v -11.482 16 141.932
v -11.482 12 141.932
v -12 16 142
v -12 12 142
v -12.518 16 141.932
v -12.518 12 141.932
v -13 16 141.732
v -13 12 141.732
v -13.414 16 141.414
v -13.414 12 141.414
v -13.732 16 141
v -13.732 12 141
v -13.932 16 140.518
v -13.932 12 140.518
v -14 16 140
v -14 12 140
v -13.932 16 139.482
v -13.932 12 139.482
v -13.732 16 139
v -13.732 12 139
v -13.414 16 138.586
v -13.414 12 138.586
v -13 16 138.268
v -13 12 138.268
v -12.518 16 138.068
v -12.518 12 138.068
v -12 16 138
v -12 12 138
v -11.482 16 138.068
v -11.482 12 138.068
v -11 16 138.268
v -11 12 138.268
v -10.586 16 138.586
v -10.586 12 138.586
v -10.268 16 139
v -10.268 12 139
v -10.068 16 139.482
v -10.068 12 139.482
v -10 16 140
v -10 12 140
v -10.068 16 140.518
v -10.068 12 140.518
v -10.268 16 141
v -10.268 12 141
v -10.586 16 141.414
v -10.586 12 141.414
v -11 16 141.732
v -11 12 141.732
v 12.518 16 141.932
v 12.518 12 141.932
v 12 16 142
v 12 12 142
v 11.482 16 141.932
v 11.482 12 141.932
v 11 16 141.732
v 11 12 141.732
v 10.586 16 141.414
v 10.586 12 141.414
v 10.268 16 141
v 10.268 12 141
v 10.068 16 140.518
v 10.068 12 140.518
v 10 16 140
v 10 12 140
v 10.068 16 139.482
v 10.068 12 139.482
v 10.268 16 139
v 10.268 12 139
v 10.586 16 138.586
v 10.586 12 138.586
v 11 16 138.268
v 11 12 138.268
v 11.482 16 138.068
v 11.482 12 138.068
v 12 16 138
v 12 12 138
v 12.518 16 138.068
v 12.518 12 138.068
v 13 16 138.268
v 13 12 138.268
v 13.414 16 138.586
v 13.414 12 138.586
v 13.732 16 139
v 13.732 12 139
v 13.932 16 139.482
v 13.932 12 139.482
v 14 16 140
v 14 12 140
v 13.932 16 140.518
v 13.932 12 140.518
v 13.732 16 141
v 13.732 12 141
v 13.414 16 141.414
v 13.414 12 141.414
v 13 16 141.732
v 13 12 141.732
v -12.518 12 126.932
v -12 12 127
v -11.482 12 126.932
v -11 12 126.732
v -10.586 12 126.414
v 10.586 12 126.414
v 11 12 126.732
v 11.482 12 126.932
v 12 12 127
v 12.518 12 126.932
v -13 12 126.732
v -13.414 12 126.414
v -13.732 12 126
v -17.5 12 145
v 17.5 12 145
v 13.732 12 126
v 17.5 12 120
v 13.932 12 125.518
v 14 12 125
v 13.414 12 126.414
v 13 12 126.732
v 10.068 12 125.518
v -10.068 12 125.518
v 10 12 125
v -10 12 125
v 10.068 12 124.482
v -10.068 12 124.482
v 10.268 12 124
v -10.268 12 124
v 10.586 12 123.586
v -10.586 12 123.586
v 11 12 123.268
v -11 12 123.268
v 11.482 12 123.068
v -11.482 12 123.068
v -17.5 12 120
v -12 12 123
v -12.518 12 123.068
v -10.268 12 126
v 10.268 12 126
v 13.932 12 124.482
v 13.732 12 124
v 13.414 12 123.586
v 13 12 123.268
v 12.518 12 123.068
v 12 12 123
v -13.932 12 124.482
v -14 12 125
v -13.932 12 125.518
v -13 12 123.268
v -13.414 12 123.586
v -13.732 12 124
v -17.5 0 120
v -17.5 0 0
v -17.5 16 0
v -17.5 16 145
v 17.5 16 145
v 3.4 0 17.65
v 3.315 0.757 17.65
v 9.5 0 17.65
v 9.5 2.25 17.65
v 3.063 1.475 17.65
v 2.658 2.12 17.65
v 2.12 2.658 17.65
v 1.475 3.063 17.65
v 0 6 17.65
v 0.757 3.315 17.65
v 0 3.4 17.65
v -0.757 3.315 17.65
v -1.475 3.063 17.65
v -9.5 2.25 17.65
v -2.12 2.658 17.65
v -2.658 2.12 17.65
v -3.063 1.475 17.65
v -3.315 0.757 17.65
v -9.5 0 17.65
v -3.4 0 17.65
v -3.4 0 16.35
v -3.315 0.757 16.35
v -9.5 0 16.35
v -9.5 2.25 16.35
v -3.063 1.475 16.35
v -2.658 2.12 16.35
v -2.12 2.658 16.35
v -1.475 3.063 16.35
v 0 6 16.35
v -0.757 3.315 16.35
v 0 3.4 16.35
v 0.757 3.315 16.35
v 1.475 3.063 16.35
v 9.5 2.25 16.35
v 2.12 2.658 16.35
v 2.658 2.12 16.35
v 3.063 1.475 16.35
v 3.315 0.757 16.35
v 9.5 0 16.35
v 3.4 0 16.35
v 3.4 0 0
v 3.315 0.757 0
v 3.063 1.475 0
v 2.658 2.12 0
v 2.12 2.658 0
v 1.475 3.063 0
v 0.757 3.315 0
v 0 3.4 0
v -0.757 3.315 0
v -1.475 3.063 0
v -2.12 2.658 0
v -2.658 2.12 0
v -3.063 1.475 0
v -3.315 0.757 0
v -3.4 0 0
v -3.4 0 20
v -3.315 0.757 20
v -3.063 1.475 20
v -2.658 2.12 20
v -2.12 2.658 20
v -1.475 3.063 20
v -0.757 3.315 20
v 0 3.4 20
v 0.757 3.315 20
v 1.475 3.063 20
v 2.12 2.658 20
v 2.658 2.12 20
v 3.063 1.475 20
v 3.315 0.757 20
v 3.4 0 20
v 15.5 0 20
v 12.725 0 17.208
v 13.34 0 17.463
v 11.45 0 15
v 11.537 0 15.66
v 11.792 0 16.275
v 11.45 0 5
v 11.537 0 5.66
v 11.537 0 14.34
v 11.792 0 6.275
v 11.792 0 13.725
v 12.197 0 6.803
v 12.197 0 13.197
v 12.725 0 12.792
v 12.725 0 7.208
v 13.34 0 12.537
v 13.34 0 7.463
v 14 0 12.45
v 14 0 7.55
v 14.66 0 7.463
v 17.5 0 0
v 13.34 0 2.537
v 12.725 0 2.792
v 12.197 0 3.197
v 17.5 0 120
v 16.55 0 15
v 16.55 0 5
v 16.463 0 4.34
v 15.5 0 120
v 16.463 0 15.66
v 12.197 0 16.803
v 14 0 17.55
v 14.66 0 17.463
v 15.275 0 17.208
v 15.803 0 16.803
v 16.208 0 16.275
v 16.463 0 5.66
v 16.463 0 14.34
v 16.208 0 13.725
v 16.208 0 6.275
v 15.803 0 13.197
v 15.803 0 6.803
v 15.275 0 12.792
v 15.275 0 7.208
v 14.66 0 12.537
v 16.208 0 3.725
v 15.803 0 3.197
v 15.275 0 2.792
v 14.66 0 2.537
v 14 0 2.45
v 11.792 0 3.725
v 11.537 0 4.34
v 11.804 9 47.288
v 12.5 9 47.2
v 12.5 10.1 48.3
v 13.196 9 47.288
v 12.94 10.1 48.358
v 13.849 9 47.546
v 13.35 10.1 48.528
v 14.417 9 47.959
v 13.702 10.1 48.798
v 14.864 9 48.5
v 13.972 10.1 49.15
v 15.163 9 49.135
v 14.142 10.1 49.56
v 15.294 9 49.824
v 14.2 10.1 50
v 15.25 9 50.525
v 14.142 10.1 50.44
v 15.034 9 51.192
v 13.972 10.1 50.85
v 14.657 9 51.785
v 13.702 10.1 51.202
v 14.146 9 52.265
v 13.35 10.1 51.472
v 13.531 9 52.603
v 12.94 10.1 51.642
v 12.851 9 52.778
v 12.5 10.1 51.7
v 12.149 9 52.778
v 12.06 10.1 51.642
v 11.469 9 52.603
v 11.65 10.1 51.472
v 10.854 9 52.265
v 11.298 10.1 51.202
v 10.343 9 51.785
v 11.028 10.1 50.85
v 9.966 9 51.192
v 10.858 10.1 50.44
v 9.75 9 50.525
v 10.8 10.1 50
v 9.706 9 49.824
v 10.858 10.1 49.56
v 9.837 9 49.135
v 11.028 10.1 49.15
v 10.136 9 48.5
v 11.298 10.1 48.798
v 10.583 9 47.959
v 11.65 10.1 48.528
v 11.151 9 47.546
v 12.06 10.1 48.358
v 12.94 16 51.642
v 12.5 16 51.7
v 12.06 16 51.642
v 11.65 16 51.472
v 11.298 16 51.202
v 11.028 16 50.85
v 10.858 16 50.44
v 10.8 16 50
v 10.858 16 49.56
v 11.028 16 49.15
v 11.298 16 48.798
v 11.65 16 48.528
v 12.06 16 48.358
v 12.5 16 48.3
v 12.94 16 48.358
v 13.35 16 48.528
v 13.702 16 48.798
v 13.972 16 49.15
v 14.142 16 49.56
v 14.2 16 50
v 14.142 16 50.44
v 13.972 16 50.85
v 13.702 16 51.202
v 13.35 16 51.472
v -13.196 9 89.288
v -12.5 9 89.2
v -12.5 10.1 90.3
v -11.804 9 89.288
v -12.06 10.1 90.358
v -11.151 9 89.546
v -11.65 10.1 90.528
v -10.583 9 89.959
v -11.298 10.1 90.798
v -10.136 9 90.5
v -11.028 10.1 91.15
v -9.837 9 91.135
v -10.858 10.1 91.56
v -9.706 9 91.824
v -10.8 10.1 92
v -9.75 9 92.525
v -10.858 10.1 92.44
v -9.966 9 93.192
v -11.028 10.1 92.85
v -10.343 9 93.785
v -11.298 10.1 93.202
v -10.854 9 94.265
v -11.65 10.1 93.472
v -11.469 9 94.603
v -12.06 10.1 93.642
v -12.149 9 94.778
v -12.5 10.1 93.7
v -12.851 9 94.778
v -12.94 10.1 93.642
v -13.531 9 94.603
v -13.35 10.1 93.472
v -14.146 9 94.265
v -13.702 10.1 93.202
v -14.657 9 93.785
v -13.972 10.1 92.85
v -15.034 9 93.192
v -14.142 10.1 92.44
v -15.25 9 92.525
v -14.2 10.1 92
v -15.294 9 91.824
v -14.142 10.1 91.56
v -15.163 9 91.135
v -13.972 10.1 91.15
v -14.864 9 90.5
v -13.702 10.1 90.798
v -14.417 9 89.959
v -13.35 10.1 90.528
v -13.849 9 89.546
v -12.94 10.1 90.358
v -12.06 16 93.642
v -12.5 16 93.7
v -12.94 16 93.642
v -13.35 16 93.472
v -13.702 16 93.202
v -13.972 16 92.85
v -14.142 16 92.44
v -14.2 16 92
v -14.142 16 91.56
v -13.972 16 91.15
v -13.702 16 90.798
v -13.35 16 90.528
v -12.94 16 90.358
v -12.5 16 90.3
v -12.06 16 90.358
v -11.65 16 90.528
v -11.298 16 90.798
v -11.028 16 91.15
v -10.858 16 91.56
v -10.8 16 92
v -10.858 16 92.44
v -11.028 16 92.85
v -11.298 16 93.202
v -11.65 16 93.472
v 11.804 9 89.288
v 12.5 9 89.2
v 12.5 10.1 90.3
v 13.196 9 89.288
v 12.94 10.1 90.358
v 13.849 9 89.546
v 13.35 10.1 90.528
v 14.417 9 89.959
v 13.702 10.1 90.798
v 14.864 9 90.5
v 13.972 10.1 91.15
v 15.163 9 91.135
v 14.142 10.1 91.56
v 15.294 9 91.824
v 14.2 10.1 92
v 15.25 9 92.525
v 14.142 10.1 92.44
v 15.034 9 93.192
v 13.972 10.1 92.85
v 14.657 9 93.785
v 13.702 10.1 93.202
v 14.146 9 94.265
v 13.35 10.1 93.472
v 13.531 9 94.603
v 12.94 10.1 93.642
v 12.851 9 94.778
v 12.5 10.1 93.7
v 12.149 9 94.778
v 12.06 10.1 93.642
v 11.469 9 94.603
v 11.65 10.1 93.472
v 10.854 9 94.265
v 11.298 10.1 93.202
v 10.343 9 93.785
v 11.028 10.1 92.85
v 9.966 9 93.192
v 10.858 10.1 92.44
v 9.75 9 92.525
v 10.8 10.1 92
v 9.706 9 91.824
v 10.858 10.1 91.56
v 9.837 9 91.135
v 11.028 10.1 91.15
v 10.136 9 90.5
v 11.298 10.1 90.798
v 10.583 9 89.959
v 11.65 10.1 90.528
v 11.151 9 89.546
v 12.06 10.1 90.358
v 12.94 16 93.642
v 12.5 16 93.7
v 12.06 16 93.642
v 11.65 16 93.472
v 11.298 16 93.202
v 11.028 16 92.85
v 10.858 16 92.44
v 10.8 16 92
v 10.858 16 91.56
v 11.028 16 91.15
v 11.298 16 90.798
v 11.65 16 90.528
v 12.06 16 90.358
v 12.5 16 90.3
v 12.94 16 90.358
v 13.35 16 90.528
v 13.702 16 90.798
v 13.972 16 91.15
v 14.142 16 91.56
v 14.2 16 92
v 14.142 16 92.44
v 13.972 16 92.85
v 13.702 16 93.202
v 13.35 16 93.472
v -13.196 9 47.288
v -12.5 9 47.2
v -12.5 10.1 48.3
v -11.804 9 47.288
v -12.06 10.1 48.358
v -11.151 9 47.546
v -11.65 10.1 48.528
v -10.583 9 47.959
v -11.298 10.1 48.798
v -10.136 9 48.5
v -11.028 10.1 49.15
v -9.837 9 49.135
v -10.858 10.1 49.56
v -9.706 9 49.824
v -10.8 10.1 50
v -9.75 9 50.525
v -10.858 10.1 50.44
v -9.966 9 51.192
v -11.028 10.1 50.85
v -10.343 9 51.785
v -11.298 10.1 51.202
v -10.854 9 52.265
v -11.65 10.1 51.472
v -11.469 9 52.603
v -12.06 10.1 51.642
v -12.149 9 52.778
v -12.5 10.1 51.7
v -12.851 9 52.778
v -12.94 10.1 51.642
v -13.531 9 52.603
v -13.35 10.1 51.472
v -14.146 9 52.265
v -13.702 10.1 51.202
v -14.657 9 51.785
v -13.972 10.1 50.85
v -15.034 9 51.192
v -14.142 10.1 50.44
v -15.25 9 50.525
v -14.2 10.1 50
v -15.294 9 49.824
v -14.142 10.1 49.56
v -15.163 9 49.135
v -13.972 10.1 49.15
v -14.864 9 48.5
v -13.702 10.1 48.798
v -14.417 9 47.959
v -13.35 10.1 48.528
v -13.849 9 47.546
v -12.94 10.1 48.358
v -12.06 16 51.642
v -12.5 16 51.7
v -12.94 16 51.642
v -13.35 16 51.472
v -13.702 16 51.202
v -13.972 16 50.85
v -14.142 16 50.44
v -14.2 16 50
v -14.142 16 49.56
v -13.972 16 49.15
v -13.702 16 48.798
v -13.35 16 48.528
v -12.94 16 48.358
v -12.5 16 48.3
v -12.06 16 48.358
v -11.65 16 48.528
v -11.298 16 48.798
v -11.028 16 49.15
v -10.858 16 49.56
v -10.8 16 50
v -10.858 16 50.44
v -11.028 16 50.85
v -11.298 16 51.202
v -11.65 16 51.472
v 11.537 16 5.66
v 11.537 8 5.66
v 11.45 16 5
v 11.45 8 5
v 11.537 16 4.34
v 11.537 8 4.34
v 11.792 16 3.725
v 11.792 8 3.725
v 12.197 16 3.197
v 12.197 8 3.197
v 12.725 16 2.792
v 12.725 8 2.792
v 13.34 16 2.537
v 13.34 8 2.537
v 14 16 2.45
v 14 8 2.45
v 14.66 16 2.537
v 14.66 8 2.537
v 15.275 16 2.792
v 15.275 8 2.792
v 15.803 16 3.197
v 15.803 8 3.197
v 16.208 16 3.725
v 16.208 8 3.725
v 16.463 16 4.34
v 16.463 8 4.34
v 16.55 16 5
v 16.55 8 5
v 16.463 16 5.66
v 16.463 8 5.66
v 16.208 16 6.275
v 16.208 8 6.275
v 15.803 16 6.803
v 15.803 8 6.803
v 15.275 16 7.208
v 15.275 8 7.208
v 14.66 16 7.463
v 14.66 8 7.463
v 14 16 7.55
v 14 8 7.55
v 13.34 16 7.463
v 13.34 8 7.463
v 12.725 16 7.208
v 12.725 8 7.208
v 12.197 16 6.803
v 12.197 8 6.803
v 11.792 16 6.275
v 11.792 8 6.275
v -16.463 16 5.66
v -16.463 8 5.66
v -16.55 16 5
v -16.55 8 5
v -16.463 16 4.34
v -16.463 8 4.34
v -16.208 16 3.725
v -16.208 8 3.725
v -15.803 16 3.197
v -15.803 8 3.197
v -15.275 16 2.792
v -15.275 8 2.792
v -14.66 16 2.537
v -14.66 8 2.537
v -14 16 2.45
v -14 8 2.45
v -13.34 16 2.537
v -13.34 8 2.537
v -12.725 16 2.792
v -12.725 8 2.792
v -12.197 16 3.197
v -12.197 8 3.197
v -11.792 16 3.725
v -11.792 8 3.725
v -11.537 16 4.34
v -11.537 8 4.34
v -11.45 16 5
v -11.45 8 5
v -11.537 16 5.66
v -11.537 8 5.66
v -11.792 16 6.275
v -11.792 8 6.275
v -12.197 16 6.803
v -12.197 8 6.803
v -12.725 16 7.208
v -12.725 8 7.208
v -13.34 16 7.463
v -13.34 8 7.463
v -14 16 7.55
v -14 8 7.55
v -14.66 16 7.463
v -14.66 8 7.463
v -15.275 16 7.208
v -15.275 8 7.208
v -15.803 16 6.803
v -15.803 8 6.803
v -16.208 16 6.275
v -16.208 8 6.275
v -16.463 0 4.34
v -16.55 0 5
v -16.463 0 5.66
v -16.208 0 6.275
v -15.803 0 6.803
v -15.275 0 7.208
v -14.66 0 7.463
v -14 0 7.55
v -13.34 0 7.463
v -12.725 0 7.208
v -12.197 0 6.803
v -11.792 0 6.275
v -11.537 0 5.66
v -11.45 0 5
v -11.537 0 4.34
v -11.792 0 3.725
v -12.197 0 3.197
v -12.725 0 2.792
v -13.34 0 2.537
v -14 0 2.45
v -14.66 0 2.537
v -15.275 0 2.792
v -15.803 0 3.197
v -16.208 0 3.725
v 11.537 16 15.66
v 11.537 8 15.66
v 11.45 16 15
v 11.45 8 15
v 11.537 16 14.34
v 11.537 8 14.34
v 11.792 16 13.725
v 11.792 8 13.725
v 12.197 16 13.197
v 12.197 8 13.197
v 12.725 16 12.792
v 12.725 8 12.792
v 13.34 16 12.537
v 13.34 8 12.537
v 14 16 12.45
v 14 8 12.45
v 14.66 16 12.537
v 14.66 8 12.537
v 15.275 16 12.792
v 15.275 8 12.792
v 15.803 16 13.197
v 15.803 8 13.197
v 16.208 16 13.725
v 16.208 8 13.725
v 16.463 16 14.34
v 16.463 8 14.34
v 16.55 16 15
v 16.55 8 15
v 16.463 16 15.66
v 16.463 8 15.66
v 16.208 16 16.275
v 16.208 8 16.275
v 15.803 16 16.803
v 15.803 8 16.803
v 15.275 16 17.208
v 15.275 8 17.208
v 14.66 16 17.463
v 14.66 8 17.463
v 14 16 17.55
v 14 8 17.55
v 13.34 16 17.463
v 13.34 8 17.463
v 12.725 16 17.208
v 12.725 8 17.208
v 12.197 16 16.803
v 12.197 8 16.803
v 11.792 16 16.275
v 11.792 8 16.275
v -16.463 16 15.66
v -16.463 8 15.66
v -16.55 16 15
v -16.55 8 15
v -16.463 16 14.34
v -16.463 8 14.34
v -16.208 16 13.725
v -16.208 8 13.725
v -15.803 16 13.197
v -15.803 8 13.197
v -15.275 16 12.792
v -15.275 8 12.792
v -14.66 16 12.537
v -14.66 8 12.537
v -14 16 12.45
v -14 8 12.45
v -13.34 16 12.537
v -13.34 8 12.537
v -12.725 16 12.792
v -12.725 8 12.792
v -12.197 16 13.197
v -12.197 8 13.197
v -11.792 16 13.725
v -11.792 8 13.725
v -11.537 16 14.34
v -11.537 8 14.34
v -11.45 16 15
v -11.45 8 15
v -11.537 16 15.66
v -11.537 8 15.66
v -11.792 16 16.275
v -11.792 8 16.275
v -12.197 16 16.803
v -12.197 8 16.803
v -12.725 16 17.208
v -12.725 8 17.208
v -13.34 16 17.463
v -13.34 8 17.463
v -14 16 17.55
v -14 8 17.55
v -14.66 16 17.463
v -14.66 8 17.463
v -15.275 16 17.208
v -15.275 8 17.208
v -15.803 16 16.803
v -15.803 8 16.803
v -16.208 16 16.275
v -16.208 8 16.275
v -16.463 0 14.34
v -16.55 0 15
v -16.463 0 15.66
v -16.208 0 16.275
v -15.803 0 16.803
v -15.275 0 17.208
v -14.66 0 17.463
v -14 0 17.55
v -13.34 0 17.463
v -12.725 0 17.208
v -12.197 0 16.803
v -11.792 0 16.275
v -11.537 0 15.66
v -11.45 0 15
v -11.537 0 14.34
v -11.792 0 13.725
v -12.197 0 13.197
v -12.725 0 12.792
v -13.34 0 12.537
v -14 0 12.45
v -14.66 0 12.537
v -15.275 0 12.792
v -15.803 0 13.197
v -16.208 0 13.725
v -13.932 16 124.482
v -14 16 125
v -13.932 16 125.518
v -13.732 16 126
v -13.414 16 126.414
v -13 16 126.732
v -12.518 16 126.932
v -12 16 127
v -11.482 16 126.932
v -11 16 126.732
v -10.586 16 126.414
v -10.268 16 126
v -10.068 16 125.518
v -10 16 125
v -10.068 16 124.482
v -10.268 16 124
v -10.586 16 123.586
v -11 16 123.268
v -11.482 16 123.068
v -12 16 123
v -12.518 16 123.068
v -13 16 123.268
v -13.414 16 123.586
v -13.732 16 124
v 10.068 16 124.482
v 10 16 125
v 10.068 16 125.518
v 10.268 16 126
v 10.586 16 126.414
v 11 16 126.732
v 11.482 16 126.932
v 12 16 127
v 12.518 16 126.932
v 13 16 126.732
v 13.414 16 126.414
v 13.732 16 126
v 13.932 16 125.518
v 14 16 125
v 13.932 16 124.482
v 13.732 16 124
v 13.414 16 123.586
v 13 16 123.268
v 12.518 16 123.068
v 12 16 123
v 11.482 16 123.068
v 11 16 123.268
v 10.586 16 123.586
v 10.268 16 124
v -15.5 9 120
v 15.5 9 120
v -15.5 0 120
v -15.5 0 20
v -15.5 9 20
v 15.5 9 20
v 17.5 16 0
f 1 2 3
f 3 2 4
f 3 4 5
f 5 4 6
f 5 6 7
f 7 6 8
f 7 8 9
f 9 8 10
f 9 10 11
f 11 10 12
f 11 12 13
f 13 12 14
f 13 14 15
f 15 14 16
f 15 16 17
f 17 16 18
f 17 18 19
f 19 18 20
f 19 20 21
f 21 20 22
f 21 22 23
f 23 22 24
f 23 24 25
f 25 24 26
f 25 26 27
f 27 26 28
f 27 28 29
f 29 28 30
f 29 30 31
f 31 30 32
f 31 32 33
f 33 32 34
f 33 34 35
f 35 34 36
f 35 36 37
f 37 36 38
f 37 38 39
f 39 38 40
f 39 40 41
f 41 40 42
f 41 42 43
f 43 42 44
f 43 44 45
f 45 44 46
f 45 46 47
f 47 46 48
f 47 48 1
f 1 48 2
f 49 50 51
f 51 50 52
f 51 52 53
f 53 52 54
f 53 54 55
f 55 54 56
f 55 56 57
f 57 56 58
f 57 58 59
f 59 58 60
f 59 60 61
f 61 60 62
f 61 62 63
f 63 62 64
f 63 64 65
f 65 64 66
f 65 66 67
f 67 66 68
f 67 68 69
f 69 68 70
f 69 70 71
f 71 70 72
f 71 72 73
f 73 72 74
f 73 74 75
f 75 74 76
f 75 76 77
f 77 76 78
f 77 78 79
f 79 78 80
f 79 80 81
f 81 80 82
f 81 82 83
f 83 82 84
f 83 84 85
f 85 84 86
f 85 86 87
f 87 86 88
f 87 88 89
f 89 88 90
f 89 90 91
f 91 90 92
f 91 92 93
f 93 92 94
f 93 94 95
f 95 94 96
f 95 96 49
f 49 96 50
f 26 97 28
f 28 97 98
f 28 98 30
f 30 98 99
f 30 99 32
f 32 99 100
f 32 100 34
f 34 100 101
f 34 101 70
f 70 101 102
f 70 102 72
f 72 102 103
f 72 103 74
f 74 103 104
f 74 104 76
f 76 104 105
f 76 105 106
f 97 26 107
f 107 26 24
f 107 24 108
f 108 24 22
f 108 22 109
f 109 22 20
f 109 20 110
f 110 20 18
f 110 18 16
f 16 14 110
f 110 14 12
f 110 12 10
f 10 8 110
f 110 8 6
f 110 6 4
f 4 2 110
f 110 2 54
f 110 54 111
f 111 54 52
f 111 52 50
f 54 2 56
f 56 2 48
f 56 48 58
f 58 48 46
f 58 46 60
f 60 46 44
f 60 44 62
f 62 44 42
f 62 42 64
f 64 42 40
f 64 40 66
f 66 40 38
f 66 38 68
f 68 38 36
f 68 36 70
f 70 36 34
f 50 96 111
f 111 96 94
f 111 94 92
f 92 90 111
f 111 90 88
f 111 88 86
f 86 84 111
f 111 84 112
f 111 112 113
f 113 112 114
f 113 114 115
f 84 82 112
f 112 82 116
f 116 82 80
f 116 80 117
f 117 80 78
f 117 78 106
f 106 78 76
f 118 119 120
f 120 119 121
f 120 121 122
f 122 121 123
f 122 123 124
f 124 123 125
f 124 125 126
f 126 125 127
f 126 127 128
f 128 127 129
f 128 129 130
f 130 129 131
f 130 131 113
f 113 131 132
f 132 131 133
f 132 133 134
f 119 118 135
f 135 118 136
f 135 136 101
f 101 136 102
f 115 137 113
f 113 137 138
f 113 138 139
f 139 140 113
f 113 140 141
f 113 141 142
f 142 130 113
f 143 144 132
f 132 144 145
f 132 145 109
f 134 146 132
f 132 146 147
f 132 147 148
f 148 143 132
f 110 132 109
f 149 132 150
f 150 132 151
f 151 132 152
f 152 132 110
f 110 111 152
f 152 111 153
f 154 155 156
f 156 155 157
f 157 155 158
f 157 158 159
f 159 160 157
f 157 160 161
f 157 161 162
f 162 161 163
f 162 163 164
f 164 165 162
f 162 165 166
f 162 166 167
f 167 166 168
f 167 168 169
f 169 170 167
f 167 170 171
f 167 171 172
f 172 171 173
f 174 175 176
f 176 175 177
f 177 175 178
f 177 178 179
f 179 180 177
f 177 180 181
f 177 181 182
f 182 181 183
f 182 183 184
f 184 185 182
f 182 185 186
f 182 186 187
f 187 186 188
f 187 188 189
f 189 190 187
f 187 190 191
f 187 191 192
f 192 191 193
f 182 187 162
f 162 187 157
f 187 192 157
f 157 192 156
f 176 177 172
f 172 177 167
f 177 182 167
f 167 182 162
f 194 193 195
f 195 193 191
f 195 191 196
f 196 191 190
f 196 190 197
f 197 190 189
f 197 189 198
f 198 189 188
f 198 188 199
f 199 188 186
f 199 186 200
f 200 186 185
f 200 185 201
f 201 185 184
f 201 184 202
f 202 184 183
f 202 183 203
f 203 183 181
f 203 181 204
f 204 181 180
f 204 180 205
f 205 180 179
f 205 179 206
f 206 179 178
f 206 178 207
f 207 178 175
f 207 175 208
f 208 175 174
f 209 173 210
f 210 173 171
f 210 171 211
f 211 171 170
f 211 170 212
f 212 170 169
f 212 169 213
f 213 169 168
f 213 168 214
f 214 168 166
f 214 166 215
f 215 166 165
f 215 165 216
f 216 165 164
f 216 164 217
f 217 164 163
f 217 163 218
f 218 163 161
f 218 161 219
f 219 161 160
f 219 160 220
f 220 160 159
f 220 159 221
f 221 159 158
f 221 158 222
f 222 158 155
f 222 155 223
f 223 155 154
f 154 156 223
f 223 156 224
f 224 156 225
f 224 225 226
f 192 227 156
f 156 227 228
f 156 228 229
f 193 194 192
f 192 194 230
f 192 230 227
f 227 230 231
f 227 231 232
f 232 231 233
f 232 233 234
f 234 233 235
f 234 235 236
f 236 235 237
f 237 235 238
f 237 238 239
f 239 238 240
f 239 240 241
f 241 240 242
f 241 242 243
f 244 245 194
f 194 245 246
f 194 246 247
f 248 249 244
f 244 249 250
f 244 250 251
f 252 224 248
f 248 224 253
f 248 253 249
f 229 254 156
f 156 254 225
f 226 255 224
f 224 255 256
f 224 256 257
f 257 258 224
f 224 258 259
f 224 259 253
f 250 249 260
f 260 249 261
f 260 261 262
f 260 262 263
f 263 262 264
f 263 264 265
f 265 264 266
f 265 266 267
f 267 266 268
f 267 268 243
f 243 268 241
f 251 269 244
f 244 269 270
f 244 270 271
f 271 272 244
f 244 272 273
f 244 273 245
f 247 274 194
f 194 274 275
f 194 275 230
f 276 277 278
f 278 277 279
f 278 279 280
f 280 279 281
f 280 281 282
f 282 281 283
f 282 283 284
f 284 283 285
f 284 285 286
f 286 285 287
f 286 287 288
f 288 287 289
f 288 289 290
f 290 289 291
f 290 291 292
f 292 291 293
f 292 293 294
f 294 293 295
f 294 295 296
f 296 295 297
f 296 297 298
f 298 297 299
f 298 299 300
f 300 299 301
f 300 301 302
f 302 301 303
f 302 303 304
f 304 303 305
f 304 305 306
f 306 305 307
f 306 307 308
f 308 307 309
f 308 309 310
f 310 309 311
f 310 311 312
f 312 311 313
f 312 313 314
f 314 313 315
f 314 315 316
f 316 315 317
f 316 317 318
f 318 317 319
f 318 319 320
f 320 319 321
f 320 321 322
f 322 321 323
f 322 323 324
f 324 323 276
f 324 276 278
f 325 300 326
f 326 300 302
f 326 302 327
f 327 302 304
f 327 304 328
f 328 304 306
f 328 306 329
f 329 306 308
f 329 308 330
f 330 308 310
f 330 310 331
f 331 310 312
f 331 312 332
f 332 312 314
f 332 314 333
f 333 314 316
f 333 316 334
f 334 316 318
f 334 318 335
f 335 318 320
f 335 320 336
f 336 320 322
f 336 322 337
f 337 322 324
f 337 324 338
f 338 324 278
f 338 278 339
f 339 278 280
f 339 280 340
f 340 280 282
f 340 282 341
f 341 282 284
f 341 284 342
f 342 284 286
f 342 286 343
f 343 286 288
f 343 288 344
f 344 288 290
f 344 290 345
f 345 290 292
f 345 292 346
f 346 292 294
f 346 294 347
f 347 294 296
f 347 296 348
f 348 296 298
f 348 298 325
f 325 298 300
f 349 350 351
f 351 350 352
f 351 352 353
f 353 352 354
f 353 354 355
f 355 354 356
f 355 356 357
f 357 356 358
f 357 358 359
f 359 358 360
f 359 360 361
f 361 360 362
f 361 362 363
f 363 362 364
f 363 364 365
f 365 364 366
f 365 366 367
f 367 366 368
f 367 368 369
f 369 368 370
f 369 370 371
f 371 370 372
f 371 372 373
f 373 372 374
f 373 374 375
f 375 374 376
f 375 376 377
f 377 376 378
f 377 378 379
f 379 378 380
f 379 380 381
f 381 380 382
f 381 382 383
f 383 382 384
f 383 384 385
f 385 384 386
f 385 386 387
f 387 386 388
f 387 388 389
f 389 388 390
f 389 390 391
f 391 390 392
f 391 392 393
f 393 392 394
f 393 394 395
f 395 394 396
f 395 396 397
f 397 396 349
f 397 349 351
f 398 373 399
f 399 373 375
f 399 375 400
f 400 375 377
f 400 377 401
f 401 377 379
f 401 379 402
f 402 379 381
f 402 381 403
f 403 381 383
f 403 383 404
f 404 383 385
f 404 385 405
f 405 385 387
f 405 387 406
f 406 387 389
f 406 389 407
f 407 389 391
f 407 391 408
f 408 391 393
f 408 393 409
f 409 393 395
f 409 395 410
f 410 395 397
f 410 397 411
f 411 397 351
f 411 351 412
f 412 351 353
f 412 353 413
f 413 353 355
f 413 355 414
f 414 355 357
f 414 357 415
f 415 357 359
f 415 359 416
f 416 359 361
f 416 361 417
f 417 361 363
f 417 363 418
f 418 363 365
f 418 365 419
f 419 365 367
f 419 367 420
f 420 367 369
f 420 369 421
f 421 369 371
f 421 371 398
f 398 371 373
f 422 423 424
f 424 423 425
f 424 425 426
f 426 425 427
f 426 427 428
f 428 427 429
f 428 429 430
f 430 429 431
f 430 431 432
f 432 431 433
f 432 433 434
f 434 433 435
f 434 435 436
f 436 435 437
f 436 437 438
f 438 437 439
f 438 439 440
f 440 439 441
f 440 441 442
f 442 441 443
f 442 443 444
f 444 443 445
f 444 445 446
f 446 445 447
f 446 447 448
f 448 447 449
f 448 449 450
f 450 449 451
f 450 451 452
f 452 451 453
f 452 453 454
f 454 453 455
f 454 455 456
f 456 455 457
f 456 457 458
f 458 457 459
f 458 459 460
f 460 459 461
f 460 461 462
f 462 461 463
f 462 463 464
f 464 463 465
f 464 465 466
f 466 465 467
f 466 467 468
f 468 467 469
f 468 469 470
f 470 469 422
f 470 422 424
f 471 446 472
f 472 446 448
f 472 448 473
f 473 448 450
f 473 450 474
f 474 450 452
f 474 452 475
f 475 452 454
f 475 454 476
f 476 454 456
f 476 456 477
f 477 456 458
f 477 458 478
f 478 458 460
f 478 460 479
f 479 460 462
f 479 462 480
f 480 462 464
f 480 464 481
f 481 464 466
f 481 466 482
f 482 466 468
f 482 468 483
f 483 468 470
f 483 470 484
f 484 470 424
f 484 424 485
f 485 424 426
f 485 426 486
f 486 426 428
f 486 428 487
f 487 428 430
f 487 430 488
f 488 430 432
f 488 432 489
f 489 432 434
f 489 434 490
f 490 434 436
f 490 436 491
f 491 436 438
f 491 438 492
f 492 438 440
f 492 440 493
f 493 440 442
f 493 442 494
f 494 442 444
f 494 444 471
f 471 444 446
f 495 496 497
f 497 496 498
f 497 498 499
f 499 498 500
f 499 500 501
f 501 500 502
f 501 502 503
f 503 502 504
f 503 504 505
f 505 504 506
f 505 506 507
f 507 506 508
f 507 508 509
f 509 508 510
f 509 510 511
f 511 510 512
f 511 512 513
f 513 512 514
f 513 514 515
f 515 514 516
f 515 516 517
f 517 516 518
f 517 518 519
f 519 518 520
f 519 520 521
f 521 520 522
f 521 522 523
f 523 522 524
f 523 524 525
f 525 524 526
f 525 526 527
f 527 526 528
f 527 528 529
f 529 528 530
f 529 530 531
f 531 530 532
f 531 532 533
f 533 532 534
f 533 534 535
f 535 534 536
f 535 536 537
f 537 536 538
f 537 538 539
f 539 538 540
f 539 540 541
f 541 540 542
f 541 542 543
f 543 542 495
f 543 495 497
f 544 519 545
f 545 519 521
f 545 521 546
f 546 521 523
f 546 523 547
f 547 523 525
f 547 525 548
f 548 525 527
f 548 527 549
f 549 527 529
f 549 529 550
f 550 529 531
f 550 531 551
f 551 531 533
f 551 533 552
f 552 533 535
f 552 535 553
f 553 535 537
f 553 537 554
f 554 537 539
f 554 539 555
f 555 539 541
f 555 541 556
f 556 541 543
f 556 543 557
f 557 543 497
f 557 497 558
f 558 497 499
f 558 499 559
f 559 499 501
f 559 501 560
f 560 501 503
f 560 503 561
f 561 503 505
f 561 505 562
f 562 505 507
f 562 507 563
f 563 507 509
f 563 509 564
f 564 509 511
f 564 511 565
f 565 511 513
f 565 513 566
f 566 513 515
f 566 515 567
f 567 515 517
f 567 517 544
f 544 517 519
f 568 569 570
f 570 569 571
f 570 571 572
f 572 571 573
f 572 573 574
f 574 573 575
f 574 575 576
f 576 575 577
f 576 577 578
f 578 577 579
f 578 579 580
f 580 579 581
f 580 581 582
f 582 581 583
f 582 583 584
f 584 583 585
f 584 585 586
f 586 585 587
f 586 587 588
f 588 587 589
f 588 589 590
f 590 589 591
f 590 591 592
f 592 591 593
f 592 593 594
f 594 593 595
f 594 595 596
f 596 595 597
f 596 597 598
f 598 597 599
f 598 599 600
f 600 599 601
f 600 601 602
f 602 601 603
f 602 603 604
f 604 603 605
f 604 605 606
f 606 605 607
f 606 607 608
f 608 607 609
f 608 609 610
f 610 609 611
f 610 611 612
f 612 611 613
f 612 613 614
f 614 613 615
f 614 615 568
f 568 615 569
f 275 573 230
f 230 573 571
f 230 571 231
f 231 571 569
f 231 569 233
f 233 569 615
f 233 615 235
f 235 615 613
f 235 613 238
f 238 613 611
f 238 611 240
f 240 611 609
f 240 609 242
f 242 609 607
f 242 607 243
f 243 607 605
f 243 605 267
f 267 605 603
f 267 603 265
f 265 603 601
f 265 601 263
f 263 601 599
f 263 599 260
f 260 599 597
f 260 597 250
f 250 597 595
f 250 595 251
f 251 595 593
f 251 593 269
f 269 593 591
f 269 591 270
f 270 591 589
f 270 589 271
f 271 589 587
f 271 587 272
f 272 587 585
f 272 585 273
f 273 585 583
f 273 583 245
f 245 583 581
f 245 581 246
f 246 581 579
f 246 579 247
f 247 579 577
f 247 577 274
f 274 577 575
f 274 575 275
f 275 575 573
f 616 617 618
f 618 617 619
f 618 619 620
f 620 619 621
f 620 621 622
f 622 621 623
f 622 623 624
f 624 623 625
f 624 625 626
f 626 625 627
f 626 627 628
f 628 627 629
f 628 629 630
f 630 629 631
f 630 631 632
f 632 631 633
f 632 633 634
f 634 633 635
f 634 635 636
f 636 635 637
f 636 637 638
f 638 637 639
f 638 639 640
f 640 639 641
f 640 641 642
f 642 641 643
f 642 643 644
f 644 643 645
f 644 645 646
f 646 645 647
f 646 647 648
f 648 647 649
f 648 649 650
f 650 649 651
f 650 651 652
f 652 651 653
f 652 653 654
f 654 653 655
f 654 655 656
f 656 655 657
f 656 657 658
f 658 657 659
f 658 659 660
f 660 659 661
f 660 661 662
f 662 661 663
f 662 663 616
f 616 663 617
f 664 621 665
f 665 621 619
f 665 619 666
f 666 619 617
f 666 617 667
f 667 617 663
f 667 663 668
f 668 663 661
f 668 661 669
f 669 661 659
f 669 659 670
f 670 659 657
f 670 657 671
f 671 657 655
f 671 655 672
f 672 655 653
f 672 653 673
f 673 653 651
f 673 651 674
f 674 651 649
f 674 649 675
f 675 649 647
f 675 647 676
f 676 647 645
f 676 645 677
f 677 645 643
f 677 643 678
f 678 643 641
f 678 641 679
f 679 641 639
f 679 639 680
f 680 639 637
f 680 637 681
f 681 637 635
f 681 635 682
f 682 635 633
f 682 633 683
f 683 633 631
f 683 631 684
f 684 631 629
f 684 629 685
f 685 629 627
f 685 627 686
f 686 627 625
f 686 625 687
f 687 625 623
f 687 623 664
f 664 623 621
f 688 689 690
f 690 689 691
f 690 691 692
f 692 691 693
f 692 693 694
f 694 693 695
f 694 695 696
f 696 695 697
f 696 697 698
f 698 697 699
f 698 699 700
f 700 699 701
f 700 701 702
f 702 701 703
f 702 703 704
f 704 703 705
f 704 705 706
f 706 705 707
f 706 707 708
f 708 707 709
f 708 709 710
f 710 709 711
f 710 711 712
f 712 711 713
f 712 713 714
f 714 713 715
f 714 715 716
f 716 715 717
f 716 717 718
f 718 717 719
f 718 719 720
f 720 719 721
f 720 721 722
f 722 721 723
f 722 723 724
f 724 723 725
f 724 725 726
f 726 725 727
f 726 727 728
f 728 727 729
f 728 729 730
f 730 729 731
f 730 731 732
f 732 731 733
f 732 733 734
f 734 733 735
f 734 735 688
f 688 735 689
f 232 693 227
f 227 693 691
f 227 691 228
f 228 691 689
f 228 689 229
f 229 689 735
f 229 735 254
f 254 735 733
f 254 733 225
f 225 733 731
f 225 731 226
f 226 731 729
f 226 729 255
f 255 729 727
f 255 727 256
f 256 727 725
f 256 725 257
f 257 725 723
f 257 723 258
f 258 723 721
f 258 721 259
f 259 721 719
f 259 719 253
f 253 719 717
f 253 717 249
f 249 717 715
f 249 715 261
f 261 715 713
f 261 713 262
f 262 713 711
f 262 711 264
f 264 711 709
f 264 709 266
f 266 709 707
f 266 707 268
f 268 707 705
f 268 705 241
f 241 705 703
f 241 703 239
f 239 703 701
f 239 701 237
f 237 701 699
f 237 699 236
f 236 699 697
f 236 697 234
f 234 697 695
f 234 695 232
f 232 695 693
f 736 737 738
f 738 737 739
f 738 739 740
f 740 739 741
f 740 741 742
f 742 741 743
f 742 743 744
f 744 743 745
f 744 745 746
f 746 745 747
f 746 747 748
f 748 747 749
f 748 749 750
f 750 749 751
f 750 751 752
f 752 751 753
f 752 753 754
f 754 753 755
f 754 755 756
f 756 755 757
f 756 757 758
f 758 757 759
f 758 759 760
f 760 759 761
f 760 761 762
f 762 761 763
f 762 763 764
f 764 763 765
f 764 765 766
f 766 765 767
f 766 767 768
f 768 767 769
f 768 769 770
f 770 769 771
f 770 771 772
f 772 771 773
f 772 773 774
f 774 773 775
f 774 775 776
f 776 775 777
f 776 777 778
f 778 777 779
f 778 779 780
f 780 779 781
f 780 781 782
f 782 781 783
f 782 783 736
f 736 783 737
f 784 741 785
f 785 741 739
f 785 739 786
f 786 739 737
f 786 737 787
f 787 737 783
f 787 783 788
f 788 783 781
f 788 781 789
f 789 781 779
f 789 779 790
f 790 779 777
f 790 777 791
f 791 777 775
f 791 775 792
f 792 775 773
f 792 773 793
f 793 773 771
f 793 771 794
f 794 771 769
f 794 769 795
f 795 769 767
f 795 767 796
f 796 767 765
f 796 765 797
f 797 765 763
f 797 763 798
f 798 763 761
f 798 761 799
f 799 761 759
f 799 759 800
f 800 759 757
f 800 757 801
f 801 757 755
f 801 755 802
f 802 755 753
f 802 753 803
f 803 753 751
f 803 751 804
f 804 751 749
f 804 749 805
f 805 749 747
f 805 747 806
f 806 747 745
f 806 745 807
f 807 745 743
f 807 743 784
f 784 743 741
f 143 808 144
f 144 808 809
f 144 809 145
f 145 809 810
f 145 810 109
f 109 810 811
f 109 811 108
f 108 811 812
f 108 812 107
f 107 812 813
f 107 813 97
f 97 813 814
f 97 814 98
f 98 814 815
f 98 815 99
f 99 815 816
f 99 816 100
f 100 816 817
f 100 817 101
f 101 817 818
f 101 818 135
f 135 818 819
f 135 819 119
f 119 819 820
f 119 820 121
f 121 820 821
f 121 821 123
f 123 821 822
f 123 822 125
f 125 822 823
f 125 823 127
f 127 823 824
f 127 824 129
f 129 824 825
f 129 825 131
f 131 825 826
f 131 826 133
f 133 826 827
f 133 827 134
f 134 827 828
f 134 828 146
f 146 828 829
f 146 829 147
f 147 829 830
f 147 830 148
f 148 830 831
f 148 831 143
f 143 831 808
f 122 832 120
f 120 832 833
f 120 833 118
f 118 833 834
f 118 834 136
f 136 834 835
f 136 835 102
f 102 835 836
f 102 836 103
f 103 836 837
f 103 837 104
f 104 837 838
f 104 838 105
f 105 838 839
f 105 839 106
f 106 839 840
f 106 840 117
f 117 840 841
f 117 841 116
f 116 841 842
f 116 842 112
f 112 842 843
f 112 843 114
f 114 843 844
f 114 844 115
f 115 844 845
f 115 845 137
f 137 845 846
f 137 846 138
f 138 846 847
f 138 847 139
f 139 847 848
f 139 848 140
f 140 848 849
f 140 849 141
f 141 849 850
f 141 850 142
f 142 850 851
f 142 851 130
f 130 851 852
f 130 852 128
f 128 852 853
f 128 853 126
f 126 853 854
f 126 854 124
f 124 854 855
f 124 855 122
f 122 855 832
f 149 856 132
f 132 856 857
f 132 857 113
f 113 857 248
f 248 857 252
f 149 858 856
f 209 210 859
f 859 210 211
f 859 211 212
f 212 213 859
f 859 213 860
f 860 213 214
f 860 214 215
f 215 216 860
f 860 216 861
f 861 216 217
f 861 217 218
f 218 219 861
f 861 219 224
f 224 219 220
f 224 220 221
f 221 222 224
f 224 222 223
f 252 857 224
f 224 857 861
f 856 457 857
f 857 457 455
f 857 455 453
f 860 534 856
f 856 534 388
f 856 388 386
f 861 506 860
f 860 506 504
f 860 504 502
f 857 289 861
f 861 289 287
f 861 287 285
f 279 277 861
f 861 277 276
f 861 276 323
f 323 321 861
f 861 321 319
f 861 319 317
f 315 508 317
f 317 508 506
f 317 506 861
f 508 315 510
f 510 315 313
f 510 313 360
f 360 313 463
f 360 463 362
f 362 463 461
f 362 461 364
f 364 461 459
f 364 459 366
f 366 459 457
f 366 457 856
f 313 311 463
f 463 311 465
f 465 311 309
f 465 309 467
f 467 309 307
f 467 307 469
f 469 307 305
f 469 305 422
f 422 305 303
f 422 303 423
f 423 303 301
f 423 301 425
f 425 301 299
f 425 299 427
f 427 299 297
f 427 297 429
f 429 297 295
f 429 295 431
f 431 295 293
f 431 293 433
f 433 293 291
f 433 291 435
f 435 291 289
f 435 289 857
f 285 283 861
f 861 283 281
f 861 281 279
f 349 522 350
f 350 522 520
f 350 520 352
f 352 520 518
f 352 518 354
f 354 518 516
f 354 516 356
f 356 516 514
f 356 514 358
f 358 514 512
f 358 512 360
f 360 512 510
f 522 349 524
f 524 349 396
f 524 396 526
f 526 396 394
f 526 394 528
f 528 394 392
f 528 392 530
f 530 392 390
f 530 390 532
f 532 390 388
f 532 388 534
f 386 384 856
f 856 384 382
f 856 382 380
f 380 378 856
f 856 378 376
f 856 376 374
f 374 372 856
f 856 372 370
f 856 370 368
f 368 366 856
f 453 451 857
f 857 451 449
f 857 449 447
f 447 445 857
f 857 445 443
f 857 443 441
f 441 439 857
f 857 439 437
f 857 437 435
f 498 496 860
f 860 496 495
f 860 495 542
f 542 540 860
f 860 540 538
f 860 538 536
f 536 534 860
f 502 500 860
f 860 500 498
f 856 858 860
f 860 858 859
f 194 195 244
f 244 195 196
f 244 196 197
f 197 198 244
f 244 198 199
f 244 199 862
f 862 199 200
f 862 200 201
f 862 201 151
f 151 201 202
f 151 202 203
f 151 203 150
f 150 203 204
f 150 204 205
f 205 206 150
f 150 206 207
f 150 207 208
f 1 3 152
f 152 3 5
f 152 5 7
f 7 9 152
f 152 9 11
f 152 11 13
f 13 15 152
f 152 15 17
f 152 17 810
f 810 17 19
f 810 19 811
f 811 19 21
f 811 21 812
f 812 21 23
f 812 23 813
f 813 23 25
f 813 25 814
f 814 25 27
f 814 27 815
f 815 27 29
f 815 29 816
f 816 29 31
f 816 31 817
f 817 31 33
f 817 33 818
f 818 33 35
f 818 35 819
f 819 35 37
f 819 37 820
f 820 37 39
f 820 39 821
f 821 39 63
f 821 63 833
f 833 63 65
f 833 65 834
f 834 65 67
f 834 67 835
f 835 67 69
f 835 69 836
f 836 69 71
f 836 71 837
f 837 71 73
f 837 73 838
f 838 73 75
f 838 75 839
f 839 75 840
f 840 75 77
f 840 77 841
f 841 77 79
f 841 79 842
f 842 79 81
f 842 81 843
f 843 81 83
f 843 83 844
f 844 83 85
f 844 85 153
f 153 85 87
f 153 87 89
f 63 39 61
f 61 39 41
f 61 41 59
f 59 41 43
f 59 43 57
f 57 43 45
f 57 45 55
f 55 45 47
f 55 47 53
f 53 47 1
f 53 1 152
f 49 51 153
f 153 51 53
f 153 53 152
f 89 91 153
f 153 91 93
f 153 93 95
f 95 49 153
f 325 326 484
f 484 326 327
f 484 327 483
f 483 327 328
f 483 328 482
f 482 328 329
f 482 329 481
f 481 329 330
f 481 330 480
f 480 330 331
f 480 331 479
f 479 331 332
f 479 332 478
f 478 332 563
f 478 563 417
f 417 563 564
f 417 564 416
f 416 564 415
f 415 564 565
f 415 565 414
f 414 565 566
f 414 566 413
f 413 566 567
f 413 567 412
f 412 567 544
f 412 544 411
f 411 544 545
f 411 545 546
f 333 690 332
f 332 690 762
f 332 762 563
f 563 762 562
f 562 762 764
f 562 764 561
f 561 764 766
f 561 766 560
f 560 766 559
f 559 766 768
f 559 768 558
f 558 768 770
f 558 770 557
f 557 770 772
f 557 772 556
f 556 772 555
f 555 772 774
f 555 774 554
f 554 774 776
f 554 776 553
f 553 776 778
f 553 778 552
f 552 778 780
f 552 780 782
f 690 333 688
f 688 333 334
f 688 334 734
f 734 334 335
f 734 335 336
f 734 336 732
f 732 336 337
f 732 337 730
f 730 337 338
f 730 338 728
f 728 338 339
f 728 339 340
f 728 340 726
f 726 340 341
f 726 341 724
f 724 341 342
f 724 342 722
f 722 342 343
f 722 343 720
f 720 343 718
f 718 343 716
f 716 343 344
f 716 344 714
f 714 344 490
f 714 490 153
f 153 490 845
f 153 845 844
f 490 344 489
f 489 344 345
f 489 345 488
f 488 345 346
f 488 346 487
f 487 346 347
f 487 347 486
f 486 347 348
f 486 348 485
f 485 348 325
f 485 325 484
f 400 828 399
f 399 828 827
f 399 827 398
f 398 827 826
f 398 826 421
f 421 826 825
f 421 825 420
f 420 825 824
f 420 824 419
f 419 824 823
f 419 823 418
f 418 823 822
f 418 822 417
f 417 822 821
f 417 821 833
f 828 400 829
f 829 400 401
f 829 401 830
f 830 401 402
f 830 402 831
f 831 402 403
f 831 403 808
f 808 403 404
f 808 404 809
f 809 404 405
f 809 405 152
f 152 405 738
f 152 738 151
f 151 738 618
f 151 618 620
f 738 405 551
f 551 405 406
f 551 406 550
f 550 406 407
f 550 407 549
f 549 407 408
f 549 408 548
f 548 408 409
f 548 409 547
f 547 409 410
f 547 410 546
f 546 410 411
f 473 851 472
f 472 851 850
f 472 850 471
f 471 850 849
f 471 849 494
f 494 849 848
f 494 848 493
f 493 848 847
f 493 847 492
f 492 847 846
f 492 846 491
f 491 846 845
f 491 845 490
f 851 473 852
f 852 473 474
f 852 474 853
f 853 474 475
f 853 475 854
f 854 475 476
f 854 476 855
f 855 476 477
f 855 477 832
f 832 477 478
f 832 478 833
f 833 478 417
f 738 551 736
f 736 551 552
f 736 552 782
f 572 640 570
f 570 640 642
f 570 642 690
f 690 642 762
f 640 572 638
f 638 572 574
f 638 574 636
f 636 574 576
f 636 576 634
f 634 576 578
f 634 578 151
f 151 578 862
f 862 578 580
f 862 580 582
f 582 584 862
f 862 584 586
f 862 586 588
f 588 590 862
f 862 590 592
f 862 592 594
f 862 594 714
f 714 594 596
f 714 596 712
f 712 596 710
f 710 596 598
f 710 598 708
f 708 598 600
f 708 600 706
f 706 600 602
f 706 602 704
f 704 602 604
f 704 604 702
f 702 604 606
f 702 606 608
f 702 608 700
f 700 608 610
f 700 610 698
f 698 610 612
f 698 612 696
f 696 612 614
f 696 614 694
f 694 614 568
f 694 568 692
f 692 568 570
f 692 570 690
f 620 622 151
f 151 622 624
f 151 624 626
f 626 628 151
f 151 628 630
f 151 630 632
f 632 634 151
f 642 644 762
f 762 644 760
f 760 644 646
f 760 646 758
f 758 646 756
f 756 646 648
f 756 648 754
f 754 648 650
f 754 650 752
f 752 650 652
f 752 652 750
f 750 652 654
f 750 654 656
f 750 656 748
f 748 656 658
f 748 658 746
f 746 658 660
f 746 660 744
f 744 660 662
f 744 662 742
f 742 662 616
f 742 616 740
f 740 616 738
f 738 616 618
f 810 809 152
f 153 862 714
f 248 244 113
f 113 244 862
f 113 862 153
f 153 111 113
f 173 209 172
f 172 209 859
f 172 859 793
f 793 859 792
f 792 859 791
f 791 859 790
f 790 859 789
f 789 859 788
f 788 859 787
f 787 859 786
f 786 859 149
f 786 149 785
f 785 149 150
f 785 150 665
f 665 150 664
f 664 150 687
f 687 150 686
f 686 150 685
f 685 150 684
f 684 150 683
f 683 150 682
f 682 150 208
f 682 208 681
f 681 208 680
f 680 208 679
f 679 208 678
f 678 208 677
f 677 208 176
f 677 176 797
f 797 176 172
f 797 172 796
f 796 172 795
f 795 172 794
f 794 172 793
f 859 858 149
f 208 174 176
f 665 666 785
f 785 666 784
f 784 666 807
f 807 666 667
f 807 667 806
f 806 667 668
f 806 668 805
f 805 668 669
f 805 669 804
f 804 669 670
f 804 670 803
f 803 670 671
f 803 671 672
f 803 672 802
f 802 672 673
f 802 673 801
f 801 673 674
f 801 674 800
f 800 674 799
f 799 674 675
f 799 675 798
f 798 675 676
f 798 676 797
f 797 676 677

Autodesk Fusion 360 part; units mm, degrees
sketch "スケッチ1" plane through (0, 0, 0) normal (0, 0, 1) x (1, 0, 0)
  line L0 (-17.5, 11) -> (17.5, 11)
  line L1 (17.5, 11) -> (17.5, 0)
  line L2 (17.5, 0) -> (-17.5, 0)
  line L3 (-17.5, 0) -> (-17.5, 11)
  dimension "d1" = 35
  dimension "d2" = 11
extrude "押し出し1" add sketch "スケッチ1" along normal blind 120
sketch "スケッチ2" plane through (0, 0, 0) normal (0, 0, -1) x (1, 0, 0)
  line L0 (17.5, 0) -> (-17.5, 0)
  line L1 (-17.5, 0) -> (-17.5, -11)
  line L2 (-17.5, -11) -> (17.5, -11)
  line L3 (17.5, -11) -> (17.5, 0)
  circle A0 centre (0, 0) radius 3.4
  dimension "d5" = 6.8
extrude "押し出し2" cut sketch "スケッチ2" against normal blind 20 contours L0 A0 picked at (0.8532, -1.8586)
sketch "スケッチ3" plane through (0, 0, 120) normal (0, 0, 1) x (-1, 0, 0)
  line L0 (17.5, 0) -> (-17.5, 0)
  line L1 (-17.5, 0) -> (-17.5, -11)
  line L2 (-17.5, -11) -> (17.5, -11)
  line L3 (17.5, -11) -> (17.5, 0)
  line L4 (15.5, -9) -> (-15.5, -9)
  line L5 (-15.5, -9) -> (-15.5, 0)
  line L6 (-15.5, 0) -> (15.5, 0)
  line L7 (15.5, 0) -> (15.5, -9)
  dimension "d8" = 2
  dimension "d9" = 31
extrude "押し出し3" cut sketch "スケッチ3" against normal blind 100 contours L0 L4 L5 L6 L7
ref_plane "作業平面1" through (0, 5.5, 9) normal (0, 0, -1) x (-1, 0, 0)
sketch "スケッチ5" plane through (0, 11, 0) normal (0, 1, 0) x (-1, 0, 0)
  line L0 (-17.5, 0) -> (17.5, 0)
  line L1 (17.5, 0) -> (17.5, 120)
  line L2 (17.5, 120) -> (-17.5, 120)
  line L3 (-17.5, 120) -> (-17.5, 0)
  line L4 (-17.5, 130) -> (17.5, 130)
  line L5 (17.5, 130) -> (17.5, 120)
  line L6 (17.5, 120) -> (-17.5, 120)
  line L7 (-17.5, 120) -> (-17.5, 130)
  line L8 (-17.5, 125) -> (17.5, 125) construction
  circle A0 centre (12, 125) radius 2
  circle A1 centre (-12, 125) radius 2
  dimension "d16" = 4
  dimension "d17" = 4
  dimension "d18" = 24
  dimension "d19" = 10
  dimension "d20" = 5.5
extrude "押し出し5" add sketch "スケッチ5" against normal blind 2 contours L2 L4 L5 L6 L7
sketch "スケッチ8" plane through (0, 0, 0) normal (0, -1, 0) x (1, 0, 0)
  line L0 (-3.4, 20) -> (-15.5, 20)
  line L1 (-15.5, 20) -> (-15.5, 120)
  line L2 (-15.5, 120) -> (-17.5, 120)
  line L3 (-17.5, 120) -> (-17.5, 0)
  line L4 (-17.5, 0) -> (-3.4, 0)
  line L5 (-3.4, 0) -> (-3.4, 20)
  circle A0 centre (-14, 15) radius 2.55
  line L6 (18.5, 15) -> (-17.5, 15) construction
  line L7 (17.541, 5) -> (-17.5, 5) construction
  line L8 (15.5, 20) -> (3.4, 20) construction
  circle A1 centre (14, 15) radius 2.55
  circle A2 centre (14, 5) radius 2.55
  circle A3 centre (-14, 5) radius 2.55
  line L9 (17.5, 0) -> (17.5, 120)
  dimension "d30" = 5
  dimension "d31" = 10
  dimension "d32" = 5.1
  dimension "d33" = 5.1
  dimension "d34" = 5.1
  dimension "d35" = 5.1
  dimension "d36" = 3.5
  dimension "d37" = 3.5
  dimension "d38" = 3.5
  dimension "d39" = 3.5
extrude "押し出し8" cut sketch "スケッチ8" against normal blind 15 contours A0 | A1 | A2 | A3
move_face "OffsetFaces1" offset 3 1 faces at (-3.8517, 11, 52.6741)
sketch "Sketch9" plane through (0, 9, 0) normal (0, -1, 0) x (1, 0, 0)
  circle A0 centre (12, 125) radius 2
  circle A1 centre (-12, 125) radius 2
  line L0 (-15.5, 120) -> (-15.5, 20)
  line L1 (-15.5, 20) -> (15.5, 20)
  line L2 (15.5, 20) -> (15.5, 120)
  line L3 (15.5, 120) -> (17.5, 120)
  line L4 (17.5, 120) -> (17.5, 130)
  line L5 (17.5, 130) -> (-17.5, 130)
  line L6 (-17.5, 130) -> (-17.5, 120)
  line L7 (-17.5, 120) -> (-15.5, 120)
  point P0 (12.5, 50)
  point P1 (-12.5, 50)
  point P2 (-12.5, 92)
  point P3 (12.5, 92)
hole "Hole1" at (-12.5, 9, 92) at (12.5, 9, 92) at (12.5, 9, 50) at (-12.5, 9, 50) direction (0, 1, 0) diameter 3.4 depth 9 tip angle 118 countersink diameter 5.6 countersink angle 90
ref_plane "WorkPlane2" through (0, 0, 17) normal (0, 0, 1) x (1, 0, 0)
sketch "Sketch10" plane through (0, 0, 17) normal (0, 0, 1) x (1, 0, 0)
  line L0 (0, 6) -> (9.5, 2.25)
  line L1 (9.5, 2.25) -> (9.5, 0)
  line L2 (0, 6) -> (-9.5, 2.25)
  line L3 (-9.5, 2.25) -> (-9.5, 0)
  line L4 (-9.5, 0) -> (9.5, 0)
extrude "Extrude9" cut sketch "Sketch10" along normal blind 0.65 and the other way blind 0.65
sketch "Sketch11" plane through (0, 9, 0) normal (0, -1, 0) x (1, 0, 0)
  circle A0 centre (12.5, 50) radius 2.8
  circle A1 centre (-12.5, 92) radius 2.8
  circle A2 centre (12.5, 92) radius 2.8
  circle A3 centre (-12.5, 50) radius 2.8
  circle A4 centre (-12, 125) radius 2
  circle A5 centre (12, 125) radius 2
  line L0 (-15.5, 120) -> (-15.5, 20)
  line L1 (-15.5, 20) -> (15.5, 20)
  line L2 (15.5, 20) -> (15.5, 120)
  line L3 (15.5, 120) -> (17.5, 120)
  line L4 (17.5, 120) -> (17.5, 130)
  line L5 (17.5, 130) -> (-17.5, 130)
  line L6 (-17.5, 130) -> (-17.5, 120)
  line L7 (-17.5, 120) -> (-15.5, 120)
  line L8 (-17.5, 130) -> (17.5, 130)
  line L9 (17.5, 130) -> (17.5, 120)
  line L10 (17.5, 120) -> (-17.5, 120)
  line L11 (-17.5, 120) -> (-17.5, 130)
extrude "Extrude10" cut sketch "Sketch11" against normal blind 3 contours L3 L4 L5 L6 L7 L8 L9 L10 L11
move_face "OffsetFaces2" offset 2 1 faces at (-3.9094, 14, 64.5049)
move_face "OffsetFaces3" offset 15 1 faces at (5.8333, 13.3333, 130)
sketch "Sketch12" plane through (0, 12, 0) normal (0, -1, 0) x (1, 0, 0)
  circle A0 centre (12, 125) radius 2
  circle A1 centre (-12, 125) radius 2
  line L0 (-17.5, 120) -> (17.5, 120)
  line L1 (17.5, 120) -> (17.5, 145)
  line L2 (17.5, 145) -> (-17.5, 145)
  line L3 (-17.5, 145) -> (-17.5, 120)
  point P0 (-12, 140)
  point P1 (12, 140)
hole "Hole2" at (-12, 12, 140) at (12, 12, 140) direction (0, 1, 0) diameter 4 depth 5 tip angle 118
